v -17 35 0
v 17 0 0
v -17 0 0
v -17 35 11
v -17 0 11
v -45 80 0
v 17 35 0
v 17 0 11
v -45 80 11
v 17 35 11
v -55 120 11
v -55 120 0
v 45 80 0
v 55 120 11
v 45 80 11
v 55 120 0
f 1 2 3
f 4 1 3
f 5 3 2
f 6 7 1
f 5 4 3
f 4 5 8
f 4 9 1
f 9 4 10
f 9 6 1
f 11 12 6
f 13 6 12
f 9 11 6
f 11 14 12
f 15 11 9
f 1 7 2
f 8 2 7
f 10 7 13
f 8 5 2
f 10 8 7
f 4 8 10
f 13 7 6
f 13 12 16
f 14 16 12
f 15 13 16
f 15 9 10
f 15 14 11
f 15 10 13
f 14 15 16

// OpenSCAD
// Red wire strippers, 120 mm
// Geometry follows the holder clearance profile. Its dimensions describe the pocket used in the source design. Physical tool dimensions and fit have yet to be measured.
// Units: mm
$fn = 64;
union() {
    translate([0, 0.0, 0]) rotate([0, 0, 0])
        linear_extrude(height=11) polygon(points=[[-17, 0], [-17, 35], [-45, 80], [-55, 120], [55, 120], [45, 80], [17, 35], [17, 0]]);
}
